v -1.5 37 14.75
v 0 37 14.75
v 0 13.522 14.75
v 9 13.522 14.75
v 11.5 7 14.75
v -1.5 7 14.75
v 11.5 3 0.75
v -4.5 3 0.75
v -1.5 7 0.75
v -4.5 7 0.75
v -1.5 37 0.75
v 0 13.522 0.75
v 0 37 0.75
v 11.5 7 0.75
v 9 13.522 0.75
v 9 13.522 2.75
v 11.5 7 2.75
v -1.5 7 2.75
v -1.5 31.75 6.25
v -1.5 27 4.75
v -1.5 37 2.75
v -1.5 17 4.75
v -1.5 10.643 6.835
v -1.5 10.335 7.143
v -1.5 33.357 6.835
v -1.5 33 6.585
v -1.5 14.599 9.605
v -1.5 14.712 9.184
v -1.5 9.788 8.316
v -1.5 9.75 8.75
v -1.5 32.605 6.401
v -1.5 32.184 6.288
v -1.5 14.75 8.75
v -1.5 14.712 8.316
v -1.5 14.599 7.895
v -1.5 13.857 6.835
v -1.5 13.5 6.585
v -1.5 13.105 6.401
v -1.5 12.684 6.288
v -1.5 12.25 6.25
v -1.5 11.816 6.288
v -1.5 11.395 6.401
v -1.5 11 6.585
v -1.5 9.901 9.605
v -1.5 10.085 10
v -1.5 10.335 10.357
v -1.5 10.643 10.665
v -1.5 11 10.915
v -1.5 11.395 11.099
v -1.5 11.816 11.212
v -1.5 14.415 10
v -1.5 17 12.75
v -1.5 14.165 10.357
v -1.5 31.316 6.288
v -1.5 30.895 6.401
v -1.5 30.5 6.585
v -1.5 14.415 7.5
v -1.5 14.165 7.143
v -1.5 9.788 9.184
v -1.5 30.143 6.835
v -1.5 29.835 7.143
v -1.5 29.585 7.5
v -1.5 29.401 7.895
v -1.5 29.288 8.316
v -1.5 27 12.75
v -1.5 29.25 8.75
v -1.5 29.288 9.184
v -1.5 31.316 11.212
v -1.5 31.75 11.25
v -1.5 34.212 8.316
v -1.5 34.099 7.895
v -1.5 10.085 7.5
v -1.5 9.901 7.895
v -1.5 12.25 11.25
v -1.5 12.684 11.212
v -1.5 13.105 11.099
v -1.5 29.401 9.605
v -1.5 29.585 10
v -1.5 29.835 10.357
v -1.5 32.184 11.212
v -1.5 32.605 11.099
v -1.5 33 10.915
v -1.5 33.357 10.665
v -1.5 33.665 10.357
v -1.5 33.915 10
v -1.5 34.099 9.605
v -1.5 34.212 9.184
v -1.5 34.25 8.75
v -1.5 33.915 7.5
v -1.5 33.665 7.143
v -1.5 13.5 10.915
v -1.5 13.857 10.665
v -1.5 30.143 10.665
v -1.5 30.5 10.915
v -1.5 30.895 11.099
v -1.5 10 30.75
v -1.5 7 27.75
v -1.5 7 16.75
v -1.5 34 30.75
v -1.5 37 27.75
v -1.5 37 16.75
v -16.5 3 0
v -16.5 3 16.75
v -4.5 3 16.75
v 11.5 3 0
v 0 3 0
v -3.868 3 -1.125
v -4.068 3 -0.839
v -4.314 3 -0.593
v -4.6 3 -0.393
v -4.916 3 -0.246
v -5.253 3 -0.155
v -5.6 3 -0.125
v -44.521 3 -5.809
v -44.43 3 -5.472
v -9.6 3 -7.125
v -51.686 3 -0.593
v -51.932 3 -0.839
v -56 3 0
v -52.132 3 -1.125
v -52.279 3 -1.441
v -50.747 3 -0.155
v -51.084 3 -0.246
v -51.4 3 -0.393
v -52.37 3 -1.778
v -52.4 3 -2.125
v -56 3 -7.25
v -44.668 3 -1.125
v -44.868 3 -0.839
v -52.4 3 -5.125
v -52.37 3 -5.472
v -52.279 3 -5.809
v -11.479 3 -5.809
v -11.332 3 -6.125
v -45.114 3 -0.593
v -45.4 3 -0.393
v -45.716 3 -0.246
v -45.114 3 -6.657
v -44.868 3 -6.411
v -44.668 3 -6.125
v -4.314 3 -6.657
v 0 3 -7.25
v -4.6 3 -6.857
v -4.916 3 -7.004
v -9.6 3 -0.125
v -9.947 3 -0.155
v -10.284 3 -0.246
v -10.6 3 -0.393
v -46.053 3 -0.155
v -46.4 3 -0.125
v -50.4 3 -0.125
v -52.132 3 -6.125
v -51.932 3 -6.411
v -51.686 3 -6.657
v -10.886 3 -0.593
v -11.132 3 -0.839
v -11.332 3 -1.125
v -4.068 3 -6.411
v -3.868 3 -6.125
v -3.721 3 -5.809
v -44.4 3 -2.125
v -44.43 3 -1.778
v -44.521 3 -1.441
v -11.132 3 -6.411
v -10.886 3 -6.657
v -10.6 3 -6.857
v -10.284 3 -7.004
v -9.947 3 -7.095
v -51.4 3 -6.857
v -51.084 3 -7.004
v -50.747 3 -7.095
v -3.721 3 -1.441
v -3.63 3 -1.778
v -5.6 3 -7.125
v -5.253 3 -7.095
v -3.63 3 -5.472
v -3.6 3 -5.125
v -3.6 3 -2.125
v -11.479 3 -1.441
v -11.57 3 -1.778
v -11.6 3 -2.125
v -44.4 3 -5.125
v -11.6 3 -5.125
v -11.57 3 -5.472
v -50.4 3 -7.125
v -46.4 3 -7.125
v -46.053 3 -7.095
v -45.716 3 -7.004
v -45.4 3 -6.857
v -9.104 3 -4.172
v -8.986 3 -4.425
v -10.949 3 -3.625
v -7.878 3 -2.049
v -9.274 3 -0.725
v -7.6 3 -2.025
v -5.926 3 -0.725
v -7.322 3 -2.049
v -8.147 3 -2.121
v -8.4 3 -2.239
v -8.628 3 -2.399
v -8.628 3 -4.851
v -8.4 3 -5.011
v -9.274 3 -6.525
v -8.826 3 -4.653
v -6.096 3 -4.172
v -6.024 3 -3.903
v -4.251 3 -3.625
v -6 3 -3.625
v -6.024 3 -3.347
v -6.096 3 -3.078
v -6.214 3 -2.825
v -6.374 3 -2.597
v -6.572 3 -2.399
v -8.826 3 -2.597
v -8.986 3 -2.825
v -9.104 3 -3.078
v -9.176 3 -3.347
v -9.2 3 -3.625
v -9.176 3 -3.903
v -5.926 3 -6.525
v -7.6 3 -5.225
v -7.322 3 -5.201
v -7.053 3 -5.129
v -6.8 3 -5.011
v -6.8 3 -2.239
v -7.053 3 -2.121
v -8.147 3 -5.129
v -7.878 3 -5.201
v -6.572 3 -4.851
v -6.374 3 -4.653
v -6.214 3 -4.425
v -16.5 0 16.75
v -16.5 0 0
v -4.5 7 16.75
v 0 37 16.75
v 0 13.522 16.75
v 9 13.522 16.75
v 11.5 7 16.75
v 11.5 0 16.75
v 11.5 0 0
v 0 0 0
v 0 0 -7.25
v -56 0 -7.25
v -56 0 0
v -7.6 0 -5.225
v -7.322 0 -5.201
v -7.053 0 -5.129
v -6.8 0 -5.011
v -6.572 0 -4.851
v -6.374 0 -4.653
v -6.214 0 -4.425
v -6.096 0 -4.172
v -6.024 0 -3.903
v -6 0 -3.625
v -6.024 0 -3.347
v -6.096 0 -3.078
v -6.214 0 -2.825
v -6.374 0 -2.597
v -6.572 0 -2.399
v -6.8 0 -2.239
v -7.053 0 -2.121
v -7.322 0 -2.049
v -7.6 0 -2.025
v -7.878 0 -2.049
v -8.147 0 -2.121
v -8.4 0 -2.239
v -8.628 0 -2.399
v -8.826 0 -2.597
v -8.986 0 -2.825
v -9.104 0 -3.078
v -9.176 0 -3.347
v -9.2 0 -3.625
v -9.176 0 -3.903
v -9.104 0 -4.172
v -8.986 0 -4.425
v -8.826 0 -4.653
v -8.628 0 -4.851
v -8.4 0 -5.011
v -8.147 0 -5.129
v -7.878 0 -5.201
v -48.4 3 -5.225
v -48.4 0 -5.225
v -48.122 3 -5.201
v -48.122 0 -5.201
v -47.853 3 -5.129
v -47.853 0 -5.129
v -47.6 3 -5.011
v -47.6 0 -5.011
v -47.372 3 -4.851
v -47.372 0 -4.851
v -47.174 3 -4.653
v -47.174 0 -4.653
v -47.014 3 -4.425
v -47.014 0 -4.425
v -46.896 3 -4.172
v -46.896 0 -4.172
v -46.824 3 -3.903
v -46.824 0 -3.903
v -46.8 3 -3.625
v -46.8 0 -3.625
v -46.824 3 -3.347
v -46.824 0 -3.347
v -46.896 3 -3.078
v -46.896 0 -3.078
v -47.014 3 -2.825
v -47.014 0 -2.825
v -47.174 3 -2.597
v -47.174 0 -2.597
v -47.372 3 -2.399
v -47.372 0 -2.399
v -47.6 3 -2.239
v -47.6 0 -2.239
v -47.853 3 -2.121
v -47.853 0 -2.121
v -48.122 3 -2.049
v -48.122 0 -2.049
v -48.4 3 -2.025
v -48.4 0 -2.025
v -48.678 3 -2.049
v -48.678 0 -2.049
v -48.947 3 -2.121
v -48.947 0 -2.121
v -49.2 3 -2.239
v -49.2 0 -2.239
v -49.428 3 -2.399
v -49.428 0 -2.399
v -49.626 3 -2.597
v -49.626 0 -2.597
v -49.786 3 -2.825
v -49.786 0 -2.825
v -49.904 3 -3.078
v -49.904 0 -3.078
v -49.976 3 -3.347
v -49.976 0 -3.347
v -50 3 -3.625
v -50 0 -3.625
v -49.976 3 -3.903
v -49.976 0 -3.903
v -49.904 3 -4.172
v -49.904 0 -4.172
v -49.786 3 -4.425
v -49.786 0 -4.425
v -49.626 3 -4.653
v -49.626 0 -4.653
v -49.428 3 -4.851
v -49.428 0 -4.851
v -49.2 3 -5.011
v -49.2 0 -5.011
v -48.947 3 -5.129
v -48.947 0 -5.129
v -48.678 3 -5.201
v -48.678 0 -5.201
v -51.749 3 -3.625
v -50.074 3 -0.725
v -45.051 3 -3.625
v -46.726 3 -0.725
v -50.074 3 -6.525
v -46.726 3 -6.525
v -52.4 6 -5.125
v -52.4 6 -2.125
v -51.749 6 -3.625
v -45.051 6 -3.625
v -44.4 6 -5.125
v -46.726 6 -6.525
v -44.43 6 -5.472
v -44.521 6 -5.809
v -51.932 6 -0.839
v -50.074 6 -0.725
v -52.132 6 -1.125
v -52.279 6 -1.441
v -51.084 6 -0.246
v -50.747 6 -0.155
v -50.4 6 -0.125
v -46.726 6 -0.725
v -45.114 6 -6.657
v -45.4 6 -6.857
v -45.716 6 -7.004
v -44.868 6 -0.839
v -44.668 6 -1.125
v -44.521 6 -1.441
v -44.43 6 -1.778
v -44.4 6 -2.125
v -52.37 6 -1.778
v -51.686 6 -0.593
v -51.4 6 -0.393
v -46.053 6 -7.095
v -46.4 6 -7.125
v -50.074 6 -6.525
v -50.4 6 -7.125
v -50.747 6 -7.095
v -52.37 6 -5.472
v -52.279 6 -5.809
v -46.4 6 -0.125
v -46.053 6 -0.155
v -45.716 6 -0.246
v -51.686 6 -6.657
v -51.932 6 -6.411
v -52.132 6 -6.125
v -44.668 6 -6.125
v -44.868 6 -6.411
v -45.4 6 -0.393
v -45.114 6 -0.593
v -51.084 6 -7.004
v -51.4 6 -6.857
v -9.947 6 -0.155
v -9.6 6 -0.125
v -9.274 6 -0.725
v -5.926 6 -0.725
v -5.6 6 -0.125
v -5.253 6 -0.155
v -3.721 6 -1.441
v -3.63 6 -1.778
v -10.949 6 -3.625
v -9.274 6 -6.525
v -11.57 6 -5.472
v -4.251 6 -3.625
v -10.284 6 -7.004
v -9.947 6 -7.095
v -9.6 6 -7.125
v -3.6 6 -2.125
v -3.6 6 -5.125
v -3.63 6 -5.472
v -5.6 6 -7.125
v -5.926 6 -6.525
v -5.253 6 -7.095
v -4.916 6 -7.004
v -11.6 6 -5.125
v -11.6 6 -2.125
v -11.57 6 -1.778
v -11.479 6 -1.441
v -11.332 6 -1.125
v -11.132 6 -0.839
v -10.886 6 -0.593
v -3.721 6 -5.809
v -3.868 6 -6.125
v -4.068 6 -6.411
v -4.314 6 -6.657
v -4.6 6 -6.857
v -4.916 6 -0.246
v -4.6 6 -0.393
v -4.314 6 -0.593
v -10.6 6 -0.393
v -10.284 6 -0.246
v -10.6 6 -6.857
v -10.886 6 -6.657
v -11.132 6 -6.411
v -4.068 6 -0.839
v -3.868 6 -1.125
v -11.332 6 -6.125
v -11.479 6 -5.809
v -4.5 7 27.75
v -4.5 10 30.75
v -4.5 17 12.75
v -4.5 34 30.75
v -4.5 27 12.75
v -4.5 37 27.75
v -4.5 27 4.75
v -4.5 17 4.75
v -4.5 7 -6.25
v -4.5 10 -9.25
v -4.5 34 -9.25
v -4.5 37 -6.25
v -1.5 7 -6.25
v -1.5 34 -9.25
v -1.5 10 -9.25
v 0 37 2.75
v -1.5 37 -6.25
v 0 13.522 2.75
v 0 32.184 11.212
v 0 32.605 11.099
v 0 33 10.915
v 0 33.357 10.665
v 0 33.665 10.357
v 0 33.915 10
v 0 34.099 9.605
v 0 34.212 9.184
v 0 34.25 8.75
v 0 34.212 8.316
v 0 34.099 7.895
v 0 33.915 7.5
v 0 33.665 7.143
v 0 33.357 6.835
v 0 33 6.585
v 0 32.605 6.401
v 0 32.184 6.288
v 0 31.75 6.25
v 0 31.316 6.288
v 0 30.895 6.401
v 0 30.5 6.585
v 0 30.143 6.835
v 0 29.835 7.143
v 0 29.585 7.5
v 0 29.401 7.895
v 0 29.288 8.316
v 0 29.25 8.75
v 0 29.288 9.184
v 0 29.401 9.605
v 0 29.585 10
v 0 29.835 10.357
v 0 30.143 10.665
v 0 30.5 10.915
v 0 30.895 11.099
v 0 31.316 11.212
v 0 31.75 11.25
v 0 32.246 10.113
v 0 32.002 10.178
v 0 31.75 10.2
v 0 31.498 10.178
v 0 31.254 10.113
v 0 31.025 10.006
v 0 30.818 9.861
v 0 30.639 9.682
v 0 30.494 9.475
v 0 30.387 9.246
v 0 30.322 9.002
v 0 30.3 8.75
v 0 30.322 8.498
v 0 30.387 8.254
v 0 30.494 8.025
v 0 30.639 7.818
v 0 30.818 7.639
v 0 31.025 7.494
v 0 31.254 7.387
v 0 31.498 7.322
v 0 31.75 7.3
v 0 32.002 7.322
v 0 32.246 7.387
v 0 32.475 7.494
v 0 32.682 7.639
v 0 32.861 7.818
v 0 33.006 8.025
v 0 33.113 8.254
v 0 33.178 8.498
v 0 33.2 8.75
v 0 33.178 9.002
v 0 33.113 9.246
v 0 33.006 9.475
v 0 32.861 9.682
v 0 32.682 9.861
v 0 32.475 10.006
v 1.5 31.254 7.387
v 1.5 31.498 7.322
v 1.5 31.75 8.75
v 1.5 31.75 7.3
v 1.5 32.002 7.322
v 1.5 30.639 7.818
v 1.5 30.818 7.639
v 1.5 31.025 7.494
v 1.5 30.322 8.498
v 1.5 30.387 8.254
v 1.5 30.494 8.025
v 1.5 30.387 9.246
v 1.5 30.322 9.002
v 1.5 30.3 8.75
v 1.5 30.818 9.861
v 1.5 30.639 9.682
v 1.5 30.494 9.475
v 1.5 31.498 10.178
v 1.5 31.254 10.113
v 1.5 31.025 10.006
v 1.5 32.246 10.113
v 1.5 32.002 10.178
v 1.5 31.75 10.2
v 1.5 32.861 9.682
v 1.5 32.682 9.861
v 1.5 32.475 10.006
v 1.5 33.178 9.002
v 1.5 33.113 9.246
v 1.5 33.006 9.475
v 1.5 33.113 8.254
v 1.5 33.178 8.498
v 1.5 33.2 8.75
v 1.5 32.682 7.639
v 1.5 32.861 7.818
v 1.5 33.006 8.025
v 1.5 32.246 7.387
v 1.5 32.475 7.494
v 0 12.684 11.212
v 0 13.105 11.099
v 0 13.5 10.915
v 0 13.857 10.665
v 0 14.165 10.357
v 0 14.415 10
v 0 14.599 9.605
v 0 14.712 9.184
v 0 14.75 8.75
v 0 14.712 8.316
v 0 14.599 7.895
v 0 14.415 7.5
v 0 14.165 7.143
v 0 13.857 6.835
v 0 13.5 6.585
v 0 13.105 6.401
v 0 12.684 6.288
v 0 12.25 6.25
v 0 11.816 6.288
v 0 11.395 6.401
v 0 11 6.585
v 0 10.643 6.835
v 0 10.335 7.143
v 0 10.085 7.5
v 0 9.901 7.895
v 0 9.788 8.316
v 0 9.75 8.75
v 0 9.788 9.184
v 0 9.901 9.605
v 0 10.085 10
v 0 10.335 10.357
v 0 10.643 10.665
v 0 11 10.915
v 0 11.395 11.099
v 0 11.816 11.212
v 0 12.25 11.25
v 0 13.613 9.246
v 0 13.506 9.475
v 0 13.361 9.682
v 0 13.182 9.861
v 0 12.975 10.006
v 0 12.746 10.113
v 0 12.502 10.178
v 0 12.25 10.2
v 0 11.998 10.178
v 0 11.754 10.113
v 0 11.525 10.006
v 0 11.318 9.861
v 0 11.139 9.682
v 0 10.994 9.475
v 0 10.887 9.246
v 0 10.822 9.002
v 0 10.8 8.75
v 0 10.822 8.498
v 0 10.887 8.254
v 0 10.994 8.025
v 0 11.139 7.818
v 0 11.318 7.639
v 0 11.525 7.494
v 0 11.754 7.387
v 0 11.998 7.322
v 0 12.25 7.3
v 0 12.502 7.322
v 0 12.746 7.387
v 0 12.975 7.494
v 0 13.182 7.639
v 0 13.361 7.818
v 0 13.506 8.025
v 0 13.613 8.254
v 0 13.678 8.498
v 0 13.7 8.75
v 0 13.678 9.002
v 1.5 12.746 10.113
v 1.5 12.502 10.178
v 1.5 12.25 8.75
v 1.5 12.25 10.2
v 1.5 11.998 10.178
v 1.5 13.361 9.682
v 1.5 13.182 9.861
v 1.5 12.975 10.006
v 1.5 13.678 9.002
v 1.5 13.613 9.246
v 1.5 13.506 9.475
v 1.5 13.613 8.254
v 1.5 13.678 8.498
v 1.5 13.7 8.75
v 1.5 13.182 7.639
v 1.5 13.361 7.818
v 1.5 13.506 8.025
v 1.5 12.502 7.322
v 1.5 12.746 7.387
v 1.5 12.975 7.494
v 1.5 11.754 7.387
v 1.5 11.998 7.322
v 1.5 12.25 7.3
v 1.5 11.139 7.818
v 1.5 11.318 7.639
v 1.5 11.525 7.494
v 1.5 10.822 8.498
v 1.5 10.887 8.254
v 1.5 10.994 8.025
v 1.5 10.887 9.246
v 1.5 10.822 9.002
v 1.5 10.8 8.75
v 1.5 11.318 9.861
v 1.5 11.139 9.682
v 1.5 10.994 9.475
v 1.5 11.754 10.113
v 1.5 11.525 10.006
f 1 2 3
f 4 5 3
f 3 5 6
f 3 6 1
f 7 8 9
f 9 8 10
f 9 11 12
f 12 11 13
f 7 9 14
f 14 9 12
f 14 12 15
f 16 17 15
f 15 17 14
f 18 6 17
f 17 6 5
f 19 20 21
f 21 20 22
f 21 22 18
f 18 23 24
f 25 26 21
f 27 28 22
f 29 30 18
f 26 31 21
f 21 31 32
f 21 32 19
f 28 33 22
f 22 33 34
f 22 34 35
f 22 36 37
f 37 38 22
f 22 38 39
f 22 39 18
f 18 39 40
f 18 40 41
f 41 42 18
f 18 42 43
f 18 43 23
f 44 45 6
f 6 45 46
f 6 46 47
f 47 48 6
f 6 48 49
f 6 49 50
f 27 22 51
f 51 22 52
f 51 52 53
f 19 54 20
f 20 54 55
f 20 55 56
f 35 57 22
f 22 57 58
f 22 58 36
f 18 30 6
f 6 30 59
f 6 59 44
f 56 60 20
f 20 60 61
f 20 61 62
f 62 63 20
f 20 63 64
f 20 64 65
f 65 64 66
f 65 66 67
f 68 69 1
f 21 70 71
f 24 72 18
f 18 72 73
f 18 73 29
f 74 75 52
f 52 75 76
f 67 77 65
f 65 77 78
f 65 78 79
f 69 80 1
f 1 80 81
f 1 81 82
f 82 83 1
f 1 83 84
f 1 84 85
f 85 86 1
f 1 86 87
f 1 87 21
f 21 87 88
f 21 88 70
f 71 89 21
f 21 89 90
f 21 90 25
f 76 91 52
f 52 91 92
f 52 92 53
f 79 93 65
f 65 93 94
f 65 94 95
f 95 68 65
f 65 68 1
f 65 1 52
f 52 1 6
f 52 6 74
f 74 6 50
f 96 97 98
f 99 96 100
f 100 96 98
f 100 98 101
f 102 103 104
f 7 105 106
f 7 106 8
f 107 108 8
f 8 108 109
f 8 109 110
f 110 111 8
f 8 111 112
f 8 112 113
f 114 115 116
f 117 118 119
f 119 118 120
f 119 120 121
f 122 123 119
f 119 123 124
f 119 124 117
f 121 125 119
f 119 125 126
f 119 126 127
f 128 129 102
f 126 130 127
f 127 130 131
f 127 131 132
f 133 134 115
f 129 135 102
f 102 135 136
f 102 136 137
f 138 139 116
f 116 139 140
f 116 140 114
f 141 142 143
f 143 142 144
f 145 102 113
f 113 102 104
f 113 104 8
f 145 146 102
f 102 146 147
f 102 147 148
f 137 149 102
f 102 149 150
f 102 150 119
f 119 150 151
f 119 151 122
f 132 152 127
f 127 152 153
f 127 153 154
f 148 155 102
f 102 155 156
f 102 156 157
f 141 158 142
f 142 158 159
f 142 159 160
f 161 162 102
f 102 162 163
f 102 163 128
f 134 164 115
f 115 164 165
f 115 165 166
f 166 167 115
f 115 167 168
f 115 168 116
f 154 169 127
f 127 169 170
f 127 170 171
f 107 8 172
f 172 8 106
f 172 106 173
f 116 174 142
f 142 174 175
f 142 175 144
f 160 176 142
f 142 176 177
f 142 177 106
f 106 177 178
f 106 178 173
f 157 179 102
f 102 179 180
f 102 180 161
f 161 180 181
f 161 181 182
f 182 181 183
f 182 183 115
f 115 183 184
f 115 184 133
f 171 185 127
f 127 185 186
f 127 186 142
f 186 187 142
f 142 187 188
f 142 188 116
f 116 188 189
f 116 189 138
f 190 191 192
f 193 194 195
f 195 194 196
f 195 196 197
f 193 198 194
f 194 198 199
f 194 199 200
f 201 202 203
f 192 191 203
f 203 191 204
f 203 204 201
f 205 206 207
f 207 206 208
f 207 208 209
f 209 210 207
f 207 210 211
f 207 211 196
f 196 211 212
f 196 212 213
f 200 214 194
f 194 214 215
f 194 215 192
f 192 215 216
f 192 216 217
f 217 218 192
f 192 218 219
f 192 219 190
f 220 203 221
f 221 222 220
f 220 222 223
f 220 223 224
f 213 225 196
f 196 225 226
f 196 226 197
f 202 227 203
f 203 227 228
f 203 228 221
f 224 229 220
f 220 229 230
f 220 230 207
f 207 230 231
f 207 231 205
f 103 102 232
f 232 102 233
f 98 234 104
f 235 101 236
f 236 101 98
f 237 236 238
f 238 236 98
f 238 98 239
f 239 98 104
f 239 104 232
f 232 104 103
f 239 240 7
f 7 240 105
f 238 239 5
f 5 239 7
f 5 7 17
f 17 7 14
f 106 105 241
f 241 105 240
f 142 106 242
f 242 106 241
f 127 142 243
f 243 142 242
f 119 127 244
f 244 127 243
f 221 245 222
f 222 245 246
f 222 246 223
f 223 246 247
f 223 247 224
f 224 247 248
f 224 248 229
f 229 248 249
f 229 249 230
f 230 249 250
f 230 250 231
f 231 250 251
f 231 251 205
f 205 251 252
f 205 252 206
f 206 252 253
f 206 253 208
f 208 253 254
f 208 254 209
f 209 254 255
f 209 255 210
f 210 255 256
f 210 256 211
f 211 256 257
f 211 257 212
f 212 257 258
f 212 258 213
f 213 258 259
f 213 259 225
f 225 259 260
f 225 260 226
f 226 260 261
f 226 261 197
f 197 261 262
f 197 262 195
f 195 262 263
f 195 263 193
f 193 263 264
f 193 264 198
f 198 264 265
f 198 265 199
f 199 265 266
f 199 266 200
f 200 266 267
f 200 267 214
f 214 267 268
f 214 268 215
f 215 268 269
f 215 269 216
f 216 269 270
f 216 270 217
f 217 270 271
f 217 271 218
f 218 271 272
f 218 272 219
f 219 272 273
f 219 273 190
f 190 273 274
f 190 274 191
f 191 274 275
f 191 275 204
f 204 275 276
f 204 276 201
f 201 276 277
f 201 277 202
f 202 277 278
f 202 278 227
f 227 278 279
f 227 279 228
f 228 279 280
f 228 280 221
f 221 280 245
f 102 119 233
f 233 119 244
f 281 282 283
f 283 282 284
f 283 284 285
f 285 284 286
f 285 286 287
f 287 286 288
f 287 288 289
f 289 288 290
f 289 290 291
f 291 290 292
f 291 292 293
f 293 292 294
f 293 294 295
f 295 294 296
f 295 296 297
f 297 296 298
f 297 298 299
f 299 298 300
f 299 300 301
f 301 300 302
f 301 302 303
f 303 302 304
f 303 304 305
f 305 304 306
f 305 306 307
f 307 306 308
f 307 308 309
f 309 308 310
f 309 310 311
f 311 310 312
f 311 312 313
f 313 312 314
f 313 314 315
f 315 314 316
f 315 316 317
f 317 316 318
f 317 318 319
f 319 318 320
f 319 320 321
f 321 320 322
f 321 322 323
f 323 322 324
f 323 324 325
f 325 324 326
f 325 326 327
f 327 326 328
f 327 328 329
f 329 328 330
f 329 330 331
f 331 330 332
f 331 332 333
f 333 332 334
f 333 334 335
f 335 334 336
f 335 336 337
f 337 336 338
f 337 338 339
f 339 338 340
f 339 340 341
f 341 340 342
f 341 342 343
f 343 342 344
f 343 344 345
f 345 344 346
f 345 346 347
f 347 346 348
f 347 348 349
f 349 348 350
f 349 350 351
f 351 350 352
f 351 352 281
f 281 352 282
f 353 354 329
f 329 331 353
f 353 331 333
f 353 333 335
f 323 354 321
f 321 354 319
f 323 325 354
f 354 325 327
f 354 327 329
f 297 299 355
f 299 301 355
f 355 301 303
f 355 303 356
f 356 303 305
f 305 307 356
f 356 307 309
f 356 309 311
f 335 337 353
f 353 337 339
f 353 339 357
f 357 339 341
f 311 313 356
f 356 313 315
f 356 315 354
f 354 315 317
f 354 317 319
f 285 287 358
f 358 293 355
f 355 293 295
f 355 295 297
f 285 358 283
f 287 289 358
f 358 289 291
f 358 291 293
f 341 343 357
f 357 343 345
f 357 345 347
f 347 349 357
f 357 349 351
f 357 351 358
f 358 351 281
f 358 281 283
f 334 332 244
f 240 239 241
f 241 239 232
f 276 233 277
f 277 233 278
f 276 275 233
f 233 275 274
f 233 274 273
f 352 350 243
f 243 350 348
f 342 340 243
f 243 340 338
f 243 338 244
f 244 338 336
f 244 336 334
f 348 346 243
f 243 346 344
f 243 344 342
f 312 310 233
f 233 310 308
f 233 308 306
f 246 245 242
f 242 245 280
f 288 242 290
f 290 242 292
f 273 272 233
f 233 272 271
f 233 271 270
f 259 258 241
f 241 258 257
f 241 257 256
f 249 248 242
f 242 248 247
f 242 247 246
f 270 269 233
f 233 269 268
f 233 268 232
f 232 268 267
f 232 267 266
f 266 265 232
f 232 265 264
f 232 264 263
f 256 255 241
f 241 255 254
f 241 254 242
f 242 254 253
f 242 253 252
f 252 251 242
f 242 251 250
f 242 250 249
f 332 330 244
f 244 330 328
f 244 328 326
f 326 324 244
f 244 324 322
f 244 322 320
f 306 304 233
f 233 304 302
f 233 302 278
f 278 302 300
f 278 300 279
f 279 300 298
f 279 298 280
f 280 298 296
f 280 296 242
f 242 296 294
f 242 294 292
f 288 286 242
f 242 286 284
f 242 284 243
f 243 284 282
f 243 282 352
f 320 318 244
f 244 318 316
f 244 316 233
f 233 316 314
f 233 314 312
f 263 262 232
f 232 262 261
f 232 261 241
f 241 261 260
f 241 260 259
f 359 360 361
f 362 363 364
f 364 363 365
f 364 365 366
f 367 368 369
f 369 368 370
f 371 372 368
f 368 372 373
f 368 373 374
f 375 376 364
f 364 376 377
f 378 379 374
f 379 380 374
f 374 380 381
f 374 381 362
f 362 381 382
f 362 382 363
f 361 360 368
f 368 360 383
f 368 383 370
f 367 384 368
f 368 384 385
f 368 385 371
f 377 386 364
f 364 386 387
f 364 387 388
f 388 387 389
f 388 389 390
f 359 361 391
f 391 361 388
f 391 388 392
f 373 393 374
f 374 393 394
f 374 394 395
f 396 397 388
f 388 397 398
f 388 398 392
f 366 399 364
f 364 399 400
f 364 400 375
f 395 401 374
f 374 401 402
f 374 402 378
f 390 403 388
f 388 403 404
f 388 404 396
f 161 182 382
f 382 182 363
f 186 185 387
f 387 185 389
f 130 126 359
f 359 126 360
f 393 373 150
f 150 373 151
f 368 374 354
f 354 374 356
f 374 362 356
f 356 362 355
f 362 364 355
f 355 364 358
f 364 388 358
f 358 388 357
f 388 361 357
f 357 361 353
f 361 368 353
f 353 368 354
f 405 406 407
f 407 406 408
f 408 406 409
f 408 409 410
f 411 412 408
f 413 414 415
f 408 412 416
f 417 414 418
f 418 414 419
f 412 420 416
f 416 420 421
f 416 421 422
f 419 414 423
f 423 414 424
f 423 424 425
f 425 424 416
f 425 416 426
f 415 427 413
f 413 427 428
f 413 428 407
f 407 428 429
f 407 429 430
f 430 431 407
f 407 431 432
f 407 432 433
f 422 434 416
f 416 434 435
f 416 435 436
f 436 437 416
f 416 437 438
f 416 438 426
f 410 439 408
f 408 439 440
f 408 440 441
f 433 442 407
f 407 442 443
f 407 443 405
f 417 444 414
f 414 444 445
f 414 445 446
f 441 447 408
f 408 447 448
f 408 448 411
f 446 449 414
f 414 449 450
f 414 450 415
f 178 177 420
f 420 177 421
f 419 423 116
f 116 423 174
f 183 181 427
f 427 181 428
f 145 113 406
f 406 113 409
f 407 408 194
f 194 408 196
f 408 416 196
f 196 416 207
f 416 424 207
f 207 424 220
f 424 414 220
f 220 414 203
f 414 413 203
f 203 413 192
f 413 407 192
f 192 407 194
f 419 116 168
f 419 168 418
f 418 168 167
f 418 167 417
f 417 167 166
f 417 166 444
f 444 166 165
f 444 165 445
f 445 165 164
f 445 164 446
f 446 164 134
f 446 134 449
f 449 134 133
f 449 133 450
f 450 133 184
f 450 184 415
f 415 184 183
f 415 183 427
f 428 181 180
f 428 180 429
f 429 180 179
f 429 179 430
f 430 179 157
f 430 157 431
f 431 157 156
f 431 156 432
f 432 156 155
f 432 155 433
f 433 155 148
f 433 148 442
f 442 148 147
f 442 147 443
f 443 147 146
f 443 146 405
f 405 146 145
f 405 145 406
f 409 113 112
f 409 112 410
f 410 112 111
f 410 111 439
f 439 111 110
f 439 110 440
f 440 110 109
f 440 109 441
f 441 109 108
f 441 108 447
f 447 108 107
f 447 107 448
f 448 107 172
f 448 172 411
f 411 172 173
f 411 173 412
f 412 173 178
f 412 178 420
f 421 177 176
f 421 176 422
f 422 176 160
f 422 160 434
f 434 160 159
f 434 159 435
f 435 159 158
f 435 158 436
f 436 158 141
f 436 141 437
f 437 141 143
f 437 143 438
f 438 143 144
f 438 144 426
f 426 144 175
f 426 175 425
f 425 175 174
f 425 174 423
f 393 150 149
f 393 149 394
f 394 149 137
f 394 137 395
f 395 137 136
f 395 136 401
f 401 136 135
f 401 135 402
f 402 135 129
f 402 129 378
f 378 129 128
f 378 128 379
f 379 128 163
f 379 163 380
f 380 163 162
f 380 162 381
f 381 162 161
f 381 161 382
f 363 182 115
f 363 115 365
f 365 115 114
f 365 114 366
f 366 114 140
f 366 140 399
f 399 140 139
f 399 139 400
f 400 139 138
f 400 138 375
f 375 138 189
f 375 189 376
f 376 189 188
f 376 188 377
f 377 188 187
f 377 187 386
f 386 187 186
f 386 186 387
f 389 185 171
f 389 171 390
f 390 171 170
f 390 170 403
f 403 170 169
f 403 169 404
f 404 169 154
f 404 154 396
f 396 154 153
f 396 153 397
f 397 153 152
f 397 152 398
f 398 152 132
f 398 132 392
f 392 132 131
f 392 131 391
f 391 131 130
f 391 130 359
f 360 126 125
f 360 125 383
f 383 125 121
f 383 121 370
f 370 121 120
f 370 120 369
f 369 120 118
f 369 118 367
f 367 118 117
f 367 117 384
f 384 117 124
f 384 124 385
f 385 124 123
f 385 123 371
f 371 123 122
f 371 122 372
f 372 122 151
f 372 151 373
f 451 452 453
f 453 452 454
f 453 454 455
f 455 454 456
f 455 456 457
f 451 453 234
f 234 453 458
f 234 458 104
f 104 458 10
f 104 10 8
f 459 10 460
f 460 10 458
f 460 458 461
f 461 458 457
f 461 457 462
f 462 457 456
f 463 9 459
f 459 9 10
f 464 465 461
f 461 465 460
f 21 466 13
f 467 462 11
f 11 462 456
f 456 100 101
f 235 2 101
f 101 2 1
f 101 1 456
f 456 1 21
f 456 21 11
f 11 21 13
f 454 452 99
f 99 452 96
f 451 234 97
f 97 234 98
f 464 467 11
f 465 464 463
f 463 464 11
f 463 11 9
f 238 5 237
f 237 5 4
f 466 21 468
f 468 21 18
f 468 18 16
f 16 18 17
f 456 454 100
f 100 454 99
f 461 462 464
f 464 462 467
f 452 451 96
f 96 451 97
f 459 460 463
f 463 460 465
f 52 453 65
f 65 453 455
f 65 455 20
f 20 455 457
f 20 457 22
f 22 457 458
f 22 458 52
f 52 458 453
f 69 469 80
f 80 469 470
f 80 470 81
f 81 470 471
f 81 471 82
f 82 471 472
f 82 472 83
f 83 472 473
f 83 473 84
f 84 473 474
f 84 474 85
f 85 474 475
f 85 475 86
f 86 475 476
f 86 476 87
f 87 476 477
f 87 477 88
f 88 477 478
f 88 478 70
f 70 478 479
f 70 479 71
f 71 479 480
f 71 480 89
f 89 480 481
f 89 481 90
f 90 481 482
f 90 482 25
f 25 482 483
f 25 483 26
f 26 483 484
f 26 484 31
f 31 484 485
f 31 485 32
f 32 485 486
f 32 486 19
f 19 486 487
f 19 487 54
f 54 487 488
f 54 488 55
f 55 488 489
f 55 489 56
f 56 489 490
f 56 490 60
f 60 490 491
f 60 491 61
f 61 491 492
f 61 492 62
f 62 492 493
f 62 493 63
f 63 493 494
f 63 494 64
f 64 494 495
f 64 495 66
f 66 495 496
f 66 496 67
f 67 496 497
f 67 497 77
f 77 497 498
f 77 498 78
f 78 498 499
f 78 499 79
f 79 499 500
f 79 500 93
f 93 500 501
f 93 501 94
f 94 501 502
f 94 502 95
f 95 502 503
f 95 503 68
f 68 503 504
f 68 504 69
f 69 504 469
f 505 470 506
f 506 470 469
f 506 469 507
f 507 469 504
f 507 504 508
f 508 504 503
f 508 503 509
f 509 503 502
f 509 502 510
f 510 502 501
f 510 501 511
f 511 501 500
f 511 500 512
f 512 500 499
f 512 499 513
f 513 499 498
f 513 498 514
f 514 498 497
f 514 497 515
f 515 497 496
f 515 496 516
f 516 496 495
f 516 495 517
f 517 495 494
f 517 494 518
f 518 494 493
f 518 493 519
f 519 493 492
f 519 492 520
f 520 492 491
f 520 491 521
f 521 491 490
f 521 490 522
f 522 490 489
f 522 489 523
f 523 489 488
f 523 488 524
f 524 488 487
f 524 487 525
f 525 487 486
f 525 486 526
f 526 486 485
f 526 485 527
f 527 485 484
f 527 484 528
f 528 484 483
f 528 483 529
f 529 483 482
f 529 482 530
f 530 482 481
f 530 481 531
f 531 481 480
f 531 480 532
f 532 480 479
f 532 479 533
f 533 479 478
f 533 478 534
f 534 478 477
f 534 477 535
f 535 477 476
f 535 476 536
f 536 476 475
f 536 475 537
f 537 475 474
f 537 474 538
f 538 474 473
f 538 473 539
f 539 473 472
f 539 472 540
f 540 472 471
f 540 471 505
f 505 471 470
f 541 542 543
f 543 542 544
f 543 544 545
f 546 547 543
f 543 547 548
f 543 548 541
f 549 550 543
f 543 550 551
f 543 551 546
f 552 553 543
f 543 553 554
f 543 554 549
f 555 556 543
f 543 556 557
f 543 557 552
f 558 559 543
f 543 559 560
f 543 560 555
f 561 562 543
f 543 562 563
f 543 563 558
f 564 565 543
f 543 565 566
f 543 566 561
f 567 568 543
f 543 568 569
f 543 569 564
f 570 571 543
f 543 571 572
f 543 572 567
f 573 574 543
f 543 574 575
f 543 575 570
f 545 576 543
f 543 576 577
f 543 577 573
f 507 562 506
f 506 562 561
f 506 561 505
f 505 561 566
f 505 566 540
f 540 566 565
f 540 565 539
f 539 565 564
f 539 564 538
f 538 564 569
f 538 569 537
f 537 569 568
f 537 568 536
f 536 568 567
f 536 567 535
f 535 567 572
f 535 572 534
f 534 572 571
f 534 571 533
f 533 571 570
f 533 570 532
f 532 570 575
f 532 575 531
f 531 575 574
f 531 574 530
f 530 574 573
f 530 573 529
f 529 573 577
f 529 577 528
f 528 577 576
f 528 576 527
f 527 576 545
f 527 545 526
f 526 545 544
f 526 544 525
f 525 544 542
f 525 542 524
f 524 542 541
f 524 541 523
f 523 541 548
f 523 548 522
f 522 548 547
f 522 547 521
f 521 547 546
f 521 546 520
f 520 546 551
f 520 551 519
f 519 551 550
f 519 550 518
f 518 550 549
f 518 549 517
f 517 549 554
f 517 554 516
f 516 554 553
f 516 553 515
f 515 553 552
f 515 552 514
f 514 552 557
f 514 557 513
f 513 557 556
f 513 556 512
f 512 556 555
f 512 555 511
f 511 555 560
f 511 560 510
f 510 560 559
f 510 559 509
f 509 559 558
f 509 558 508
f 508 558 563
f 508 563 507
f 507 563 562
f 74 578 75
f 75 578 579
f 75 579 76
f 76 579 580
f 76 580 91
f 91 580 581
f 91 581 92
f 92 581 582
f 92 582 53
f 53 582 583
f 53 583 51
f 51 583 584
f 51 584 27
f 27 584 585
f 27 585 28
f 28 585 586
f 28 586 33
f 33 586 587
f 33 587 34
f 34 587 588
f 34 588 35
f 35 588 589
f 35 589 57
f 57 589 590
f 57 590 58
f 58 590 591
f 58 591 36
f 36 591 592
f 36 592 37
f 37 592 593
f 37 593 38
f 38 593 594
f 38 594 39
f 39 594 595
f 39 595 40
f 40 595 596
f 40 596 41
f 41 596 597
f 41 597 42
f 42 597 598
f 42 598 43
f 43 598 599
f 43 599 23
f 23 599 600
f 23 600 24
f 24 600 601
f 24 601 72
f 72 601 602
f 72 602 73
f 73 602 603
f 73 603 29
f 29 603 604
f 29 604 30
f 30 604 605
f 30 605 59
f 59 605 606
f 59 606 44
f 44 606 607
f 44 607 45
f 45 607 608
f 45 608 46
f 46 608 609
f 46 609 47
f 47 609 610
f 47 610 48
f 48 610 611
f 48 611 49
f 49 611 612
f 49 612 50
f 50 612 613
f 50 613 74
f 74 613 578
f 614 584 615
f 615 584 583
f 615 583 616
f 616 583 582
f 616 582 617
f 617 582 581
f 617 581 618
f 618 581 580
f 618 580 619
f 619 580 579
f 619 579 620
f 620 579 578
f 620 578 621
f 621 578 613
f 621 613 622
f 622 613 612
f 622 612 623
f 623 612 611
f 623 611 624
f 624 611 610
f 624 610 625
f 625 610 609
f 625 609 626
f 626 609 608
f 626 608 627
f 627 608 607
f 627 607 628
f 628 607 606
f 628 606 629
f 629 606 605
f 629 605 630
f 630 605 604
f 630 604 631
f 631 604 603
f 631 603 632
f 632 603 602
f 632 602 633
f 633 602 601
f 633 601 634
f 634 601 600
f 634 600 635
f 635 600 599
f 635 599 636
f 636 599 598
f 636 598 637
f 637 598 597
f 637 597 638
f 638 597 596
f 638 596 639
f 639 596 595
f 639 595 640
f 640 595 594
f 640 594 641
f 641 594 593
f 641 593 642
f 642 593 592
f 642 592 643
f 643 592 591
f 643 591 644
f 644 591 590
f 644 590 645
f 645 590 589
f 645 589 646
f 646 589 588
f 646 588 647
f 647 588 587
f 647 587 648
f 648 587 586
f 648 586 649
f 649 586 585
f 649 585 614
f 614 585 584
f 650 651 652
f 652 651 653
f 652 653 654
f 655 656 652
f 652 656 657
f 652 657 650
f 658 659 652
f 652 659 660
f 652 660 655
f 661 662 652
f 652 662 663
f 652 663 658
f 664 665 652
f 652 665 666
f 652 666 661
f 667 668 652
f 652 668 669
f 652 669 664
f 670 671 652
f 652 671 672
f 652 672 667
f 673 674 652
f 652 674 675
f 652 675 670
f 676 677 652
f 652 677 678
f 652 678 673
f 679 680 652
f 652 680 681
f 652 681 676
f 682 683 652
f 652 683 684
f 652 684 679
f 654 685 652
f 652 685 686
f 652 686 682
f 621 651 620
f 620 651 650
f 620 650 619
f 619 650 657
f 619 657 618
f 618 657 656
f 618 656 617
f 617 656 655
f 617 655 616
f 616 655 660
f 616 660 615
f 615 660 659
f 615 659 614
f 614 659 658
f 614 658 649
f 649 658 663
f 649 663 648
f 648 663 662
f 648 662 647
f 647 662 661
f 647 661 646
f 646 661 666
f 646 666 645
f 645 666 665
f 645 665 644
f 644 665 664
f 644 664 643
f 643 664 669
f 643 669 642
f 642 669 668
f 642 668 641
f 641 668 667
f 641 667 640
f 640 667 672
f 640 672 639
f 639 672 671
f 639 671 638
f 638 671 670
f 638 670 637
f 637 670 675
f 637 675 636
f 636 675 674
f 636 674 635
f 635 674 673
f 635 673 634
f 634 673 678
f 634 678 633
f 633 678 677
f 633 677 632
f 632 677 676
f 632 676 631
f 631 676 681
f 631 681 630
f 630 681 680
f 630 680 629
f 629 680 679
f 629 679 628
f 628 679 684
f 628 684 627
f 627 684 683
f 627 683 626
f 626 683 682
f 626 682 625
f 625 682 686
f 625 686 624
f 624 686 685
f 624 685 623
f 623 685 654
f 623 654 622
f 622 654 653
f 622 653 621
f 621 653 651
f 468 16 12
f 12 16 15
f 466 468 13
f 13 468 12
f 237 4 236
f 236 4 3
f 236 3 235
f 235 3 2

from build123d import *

# Parameters (mm, degrees)
SKETCH1_W               = 56
SKETCH1_H               = 7.25
SKETCH1_R               = 1.6
SKETCH1_W_2             = 5
SKETCH1_H_2             = 16.75
SKETCH1_W_3             = 11.5
BOSS_EXTRUDE1_DEPTH     = 3
SKETCH2_W               = 8
SKETCH2_H               = 7
BOSS_EXTRUDE2_DEPTH     = 3
FILLET1_R               = 2
SKETCH3_W               = 16
SKETCH3_H               = 16
BOSS_EXTRUDE3_DEPTH     = 4
BOSS_EXTRUDE4_DEPTH     = 3
BOSS_EXTRUDE5_DEPTH     = 2
BOSS_EXTRUDE6_DEPTH     = 2
CHAMFER1_SIZE           = 3
SKETCH8_W               = 8
SKETCH8_H               = 10
CUT_EXTRUDE1_DEPTH      = 10
SKETCH9_R               = 1.45
BOSS_EXTRUDE7_DEPTH     = 3
SKETCH11_R              = 2.5
BOSS_EXTRUDE8_DEPTH     = 1.5
CUT_EXTRUDE3_DEPTH      = 74.518705103
CUT_EXTRUDE3_DEPTH_BACK = 2
CUT_EXTRUDE4_DEPTH      = 72.979163652
CUT_EXTRUDE4_DEPTH_BACK = 2


with BuildPart() as part:
    # Sketch1 → Boss-Extrude1 (new body)
    # profile 1 of 4: a face of its own
    with BuildSketch(Plane(origin=(0, 0, 0), x_dir=(1, 0, 0), z_dir=(0, 1, 0))):
        with Locations((-28, 3.625)):
            Rectangle(SKETCH1_W, SKETCH1_H)
        with Locations(Location((-7.6, 3.625, 0), (0, 0, 270))):
            Circle(SKETCH1_R, mode=Mode.SUBTRACT)
        with Locations(Location((-48.4, 3.625, 0), (0, 0, 270))):
            Circle(SKETCH1_R, mode=Mode.SUBTRACT)
    # profile 2 of 4: a face of its own
    with BuildSketch(Plane(origin=(0, 0, 0), x_dir=(1, 0, 0), z_dir=(0, 1, 0))):
        with Locations((-2.5, -8.375)):
            Rectangle(SKETCH1_W_2, SKETCH1_H_2)
    # profile 3 of 4: a face of its own
    with BuildSketch(Plane(origin=(0, 0, 0), x_dir=(1, 0, 0), z_dir=(0, 1, 0))):
        with Locations((5.75, -8.375)):
            Rectangle(SKETCH1_W_3, SKETCH1_H_2)
    # profile 4 of 4: a face of its own
    with BuildSketch(Plane(origin=(0, 0, 0), x_dir=(1, 0, 0), z_dir=(0, 1, 0))):
        with Locations((-10.75, -8.375)):
            Rectangle(SKETCH1_W_3, SKETCH1_H_2)
    extrude(amount=BOSS_EXTRUDE1_DEPTH)

    # Sketch2 → Boss-Extrude2 (add)
    # profile 1 of 2: a face of its own
    with BuildSketch(Plane(origin=(0, 3, 0), x_dir=(1, 0, 0), z_dir=(0, 1, 0))):
        with Locations((-48.4, 3.625)):
            Rectangle(SKETCH2_W, SKETCH2_H)
        Polygon((-46.725684219, 0.725), (-45.051368439, 3.625), (-46.725684219, 6.525), (-50.074315781, 6.525), (-51.748631561, 3.625), (-50.074315781, 0.725), align=None, mode=Mode.SUBTRACT)
    # profile 2 of 2: a face of its own
    with BuildSketch(Plane(origin=(0, 3, 0), x_dir=(1, 0, 0), z_dir=(0, 1, 0))):
        with Locations((-7.6, 3.625)):
            Rectangle(SKETCH2_W, SKETCH2_H)
        Polygon((-5.925684219, 0.725), (-4.251368439, 3.625), (-5.925684219, 6.525), (-9.274315781, 6.525), (-10.948631561, 3.625), (-9.274315781, 0.725), align=None, mode=Mode.SUBTRACT)
    extrude(amount=BOSS_EXTRUDE2_DEPTH)

    # Fillet1
    fillet1_edges = [part.edges().sort_by_distance(p)[0] for p in [
        (-44.4, 4.5, -0.125),
        (-44.4, 4.5, -7.125),
        (-52.4, 4.5, -7.125),
        (-52.4, 4.5, -0.125),
        (-3.6, 4.5, -0.125),
        (-3.6, 4.5, -7.125),
        (-11.6, 4.5, -7.125),
        (-11.6, 4.5, -0.125),
    ]]
    fillet(fillet1_edges, radius=FILLET1_R)

    # Sketch3 → Boss-Extrude3 (add)
    with BuildSketch(Plane(origin=(0, 3, 0), x_dir=(1, 0, 0), z_dir=(0, 1, 0))):
        with Locations((3.5, -8.75)):
            Rectangle(SKETCH3_W, SKETCH3_H)
    extrude(amount=BOSS_EXTRUDE3_DEPTH)

    # Sketch5 → Boss-Extrude4 (add)
    with BuildSketch(Plane.ZY.offset(4.5)):
        Polygon((-9.25, 7), (0.75, 7), (16.75, 7), (30.75, 7), (30.75, 37), (-9.25, 37), align=None)
    extrude(amount=-BOSS_EXTRUDE4_DEPTH)

    # Sketch6 → Boss-Extrude5 (add)
    with BuildSketch(Plane.XY.offset(16.75)):
        Polygon((-1.5, 37), (0, 37), (11.5, 7), (-1.5, 7), align=None)
    extrude(amount=-BOSS_EXTRUDE5_DEPTH)

    # Sketch7 → Boss-Extrude6 (add)
    with BuildSketch(Plane(origin=(0, 0, 0.75), x_dir=(-1, 0, 0), z_dir=(0, 0, -1))):
        Polygon((1.5, 37), (0, 37), (-11.5, 7), (1.5, 7), align=None)
    extrude(amount=-BOSS_EXTRUDE6_DEPTH)

    # Chamfer1
    chamfer1_edges = [part.edges().sort_by_distance(p)[0] for p in [
        (-3, 7, -9.25),
        (-3, 37, -9.25),
        (-3, 37, 30.75),
        (-3, 7, 30.75),
    ]]
    chamfer(chamfer1_edges, length=CHAMFER1_SIZE)

    # Sketch8 → Cut-Extrude1 (cut)
    with BuildSketch(Plane(origin=(-1.5, 0, 0), x_dir=(0, 0, -1), z_dir=(1, 0, 0))):
        with Locations((-8.75, 22)):
            Rectangle(SKETCH8_W, SKETCH8_H)
    extrude(amount=-CUT_EXTRUDE1_DEPTH, mode=Mode.SUBTRACT)

    # Sketch9 → Boss-Extrude7 (add)
    with BuildSketch(Plane(origin=(-1.5, 0, 0), x_dir=(0, 0, -1), z_dir=(1, 0, 0))):
        with Locations(Location((-8.75, 31.75, 0), (0, 0, 180))):
            Circle(SKETCH9_R)
        with Locations(Location((-8.75, 12.25, 0), (0, 0, 180))):
            Circle(SKETCH9_R)
    extrude(amount=BOSS_EXTRUDE7_DEPTH)

    # Sketch11 → Boss-Extrude8 (add)
    with BuildSketch(Plane(origin=(-1.5, 0, 0), x_dir=(0, 0, -1), z_dir=(1, 0, 0))):
        with Locations(Location((-8.75, 31.75, 0), (0, 0, 180))):
            Circle(SKETCH11_R)
        with Locations(Location((-8.75, 12.25, 0), (0, 0, 180))):
            Circle(SKETCH11_R)
    extrude(amount=BOSS_EXTRUDE8_DEPTH)

    # Sketch13 → Cut-Extrude3 (cut, two sides: drawn at the far end of the back side and taken through both)
    with BuildSketch(Plane(origin=(0, 0, 0.75), x_dir=(-1, 0, 0), z_dir=(0, 0, -1)).offset(-CUT_EXTRUDE3_DEPTH_BACK)):
        Polygon((0, 185.220530074), (0, 37), (0, 13.52173913), (-9, 13.52173913), (-157.220530074, 13.52173913), (-375.851096448, 213.716588185), (-218.630566375, 385.415379128), align=None)
    extrude(amount=CUT_EXTRUDE3_DEPTH + CUT_EXTRUDE3_DEPTH_BACK, mode=Mode.SUBTRACT)

    # Sketch14 → Cut-Extrude4 (cut, two sides: drawn at the far end of the back side and taken through both)
    with BuildSketch(Plane.XY.offset(16.75).offset(-CUT_EXTRUDE4_DEPTH_BACK)):
        Polygon((0, 185.220530074), (0, 37), (0, 13.52173913), (9, 13.52173913), (157.220530074, 13.52173913), (375.851096448, 213.716588185), (218.630566375, 385.415379128), align=None)
    extrude(amount=CUT_EXTRUDE4_DEPTH + CUT_EXTRUDE4_DEPTH_BACK, mode=Mode.SUBTRACT)


solid = part.part
